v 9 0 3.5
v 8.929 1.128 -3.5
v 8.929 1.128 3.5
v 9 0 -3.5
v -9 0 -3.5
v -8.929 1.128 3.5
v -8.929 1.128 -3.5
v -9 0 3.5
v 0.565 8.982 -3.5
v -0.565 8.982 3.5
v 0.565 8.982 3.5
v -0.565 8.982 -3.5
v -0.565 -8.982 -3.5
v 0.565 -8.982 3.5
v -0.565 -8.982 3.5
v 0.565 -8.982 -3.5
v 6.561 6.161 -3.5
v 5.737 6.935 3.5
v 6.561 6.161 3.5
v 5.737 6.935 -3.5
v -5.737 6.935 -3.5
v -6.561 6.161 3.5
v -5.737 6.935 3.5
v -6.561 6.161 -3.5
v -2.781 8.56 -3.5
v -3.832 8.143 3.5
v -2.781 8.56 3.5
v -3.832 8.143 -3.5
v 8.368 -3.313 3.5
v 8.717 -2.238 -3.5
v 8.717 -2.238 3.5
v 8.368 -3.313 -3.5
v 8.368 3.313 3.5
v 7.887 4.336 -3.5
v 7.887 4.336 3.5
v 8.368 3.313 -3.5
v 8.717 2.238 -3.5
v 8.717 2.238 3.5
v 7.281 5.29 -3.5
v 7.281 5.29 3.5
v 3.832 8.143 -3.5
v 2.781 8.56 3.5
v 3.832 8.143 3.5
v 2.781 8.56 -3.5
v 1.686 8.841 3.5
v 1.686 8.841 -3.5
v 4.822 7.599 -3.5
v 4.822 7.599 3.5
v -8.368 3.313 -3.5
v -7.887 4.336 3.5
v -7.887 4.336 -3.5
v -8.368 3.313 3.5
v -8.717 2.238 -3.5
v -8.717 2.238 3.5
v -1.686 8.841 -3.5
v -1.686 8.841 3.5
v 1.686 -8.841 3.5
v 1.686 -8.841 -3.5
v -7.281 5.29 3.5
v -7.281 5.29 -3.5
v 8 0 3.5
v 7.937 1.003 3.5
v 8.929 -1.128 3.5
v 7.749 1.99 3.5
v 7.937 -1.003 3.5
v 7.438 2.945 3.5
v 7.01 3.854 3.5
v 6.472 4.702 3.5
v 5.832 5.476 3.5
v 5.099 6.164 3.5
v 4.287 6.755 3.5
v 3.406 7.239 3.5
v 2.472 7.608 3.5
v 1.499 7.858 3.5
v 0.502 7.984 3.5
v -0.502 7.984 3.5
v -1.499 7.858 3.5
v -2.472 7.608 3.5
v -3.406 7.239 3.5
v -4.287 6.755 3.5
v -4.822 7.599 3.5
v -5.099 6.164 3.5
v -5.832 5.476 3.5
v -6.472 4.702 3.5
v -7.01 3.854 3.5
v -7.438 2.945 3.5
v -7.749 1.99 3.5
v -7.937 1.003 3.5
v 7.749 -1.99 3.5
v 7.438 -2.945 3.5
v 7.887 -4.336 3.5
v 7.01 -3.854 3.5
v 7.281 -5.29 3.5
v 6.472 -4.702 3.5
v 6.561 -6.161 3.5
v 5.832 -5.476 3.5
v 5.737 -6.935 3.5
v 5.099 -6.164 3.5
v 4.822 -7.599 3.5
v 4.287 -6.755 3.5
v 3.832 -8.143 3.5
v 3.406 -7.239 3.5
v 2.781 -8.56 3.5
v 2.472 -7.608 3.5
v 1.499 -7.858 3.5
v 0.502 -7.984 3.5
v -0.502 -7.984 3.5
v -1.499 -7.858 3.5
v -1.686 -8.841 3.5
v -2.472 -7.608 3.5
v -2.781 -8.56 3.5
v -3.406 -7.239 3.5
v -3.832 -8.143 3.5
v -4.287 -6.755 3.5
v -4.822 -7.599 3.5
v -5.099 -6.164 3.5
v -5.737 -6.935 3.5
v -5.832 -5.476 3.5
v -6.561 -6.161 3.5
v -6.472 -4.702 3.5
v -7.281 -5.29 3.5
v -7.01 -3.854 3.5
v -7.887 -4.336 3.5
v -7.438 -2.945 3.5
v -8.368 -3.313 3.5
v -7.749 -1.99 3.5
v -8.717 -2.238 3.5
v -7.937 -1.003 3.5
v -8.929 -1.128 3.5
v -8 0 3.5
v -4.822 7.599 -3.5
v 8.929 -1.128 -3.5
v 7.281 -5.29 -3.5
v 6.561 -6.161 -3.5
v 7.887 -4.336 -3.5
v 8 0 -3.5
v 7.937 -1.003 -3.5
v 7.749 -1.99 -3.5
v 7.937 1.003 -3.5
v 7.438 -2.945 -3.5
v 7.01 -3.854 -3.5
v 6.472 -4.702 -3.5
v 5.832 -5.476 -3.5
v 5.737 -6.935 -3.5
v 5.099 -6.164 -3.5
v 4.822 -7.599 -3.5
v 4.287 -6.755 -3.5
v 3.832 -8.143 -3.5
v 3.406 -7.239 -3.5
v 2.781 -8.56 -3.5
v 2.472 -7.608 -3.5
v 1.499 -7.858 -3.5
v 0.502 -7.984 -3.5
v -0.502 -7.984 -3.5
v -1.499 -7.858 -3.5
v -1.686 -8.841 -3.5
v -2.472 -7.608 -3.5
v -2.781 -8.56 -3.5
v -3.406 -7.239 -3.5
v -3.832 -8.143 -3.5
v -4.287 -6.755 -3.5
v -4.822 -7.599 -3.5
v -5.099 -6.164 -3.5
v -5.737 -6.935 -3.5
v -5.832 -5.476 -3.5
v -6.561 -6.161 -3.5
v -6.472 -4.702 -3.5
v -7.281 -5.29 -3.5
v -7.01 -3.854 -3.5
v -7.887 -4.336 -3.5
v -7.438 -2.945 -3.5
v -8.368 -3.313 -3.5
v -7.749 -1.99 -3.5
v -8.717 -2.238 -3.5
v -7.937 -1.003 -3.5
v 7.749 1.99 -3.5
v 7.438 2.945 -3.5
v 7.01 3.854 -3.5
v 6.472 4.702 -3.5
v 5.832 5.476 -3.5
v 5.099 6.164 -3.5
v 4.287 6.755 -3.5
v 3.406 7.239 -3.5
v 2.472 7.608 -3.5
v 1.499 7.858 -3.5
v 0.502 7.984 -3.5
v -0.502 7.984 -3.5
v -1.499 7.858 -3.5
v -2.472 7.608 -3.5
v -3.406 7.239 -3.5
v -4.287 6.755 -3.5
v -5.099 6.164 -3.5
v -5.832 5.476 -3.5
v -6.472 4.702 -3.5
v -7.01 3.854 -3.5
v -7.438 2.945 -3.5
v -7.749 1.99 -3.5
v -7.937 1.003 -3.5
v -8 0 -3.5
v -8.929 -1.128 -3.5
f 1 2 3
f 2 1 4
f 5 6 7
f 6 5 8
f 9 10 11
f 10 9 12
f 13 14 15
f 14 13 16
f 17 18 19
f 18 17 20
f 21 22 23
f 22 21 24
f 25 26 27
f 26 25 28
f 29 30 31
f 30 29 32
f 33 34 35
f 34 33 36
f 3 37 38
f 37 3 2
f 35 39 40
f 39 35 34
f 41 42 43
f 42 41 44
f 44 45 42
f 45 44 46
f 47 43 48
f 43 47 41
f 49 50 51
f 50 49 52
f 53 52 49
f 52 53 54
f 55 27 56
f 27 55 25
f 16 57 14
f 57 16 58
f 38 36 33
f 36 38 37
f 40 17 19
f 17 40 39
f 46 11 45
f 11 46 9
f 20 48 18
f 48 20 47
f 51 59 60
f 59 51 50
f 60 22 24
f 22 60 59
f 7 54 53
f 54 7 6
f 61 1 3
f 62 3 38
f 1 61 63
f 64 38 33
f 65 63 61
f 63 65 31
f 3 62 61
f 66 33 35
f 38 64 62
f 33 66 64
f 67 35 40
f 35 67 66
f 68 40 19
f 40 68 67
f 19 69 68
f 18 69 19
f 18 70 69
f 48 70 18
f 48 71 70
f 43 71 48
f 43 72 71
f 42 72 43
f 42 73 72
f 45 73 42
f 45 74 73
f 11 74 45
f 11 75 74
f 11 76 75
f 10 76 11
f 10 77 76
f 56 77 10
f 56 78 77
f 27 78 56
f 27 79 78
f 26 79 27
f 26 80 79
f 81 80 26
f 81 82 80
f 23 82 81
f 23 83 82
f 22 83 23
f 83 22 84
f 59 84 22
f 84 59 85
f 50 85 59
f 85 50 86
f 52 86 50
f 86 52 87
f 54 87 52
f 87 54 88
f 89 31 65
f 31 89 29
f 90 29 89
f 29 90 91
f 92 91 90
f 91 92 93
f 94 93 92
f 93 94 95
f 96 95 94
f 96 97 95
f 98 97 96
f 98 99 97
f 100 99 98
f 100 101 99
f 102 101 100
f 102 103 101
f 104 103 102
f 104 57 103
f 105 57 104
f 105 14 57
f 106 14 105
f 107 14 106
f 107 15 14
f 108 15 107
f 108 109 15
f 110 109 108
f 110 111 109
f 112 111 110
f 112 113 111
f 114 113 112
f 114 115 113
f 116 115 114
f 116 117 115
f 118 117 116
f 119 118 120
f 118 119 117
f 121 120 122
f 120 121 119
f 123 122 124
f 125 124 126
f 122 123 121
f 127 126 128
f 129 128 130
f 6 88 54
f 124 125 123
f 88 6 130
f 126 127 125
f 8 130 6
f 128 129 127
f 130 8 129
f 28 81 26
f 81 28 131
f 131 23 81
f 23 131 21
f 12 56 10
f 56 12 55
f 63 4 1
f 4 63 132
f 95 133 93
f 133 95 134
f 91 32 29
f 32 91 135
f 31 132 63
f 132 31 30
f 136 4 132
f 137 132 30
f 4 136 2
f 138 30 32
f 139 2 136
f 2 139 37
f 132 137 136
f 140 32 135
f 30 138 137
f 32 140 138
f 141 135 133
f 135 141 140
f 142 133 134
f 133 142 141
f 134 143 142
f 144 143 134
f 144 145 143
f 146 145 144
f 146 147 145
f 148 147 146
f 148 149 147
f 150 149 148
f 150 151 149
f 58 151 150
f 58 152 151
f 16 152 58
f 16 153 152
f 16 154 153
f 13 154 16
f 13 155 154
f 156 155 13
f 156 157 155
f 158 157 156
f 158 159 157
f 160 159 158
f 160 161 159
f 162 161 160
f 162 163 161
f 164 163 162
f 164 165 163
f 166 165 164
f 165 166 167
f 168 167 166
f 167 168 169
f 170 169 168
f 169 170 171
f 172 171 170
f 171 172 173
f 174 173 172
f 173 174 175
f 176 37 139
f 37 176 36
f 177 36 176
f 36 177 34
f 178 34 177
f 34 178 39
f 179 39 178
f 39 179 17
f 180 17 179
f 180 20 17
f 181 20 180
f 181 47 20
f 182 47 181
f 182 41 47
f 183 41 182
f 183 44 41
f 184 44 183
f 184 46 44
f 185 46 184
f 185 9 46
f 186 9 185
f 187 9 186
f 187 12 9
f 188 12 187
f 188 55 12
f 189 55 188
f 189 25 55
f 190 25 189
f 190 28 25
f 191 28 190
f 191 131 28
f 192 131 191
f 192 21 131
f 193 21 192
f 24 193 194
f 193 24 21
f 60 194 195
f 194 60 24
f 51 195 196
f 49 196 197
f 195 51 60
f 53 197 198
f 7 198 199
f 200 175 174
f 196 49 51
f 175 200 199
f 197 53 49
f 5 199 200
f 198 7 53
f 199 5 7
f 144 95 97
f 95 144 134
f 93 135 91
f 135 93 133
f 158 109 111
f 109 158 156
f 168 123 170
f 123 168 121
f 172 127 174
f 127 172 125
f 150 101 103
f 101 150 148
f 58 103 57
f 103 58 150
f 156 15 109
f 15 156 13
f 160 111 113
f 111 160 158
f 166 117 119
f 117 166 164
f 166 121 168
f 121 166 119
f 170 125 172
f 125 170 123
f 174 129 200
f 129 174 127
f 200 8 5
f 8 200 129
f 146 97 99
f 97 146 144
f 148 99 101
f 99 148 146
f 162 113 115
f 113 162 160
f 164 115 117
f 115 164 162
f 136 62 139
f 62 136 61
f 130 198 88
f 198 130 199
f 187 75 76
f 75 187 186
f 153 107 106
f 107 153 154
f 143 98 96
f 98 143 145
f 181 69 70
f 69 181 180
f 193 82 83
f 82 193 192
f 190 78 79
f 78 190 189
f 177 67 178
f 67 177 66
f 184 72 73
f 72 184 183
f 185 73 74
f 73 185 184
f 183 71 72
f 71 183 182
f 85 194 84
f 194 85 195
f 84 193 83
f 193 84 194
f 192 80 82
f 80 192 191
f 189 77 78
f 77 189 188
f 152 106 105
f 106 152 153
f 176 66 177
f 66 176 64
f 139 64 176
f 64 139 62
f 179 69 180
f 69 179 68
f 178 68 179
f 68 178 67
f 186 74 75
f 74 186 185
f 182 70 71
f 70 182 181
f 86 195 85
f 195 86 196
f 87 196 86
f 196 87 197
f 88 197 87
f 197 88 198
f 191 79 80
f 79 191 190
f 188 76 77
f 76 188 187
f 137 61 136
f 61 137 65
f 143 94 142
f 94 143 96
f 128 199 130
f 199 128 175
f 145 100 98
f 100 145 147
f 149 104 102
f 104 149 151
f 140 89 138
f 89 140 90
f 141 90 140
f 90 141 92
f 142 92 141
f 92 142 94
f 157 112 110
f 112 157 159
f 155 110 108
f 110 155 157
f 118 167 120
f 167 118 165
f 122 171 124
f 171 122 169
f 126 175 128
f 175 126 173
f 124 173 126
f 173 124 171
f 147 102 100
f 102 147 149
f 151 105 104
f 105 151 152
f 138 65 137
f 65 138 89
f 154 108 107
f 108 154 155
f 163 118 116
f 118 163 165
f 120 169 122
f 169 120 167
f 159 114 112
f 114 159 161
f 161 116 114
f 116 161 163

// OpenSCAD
$fn = 50;


difference() {
	union() {
		translate(v = [0, 0, -3.5000000000]) {
			cylinder(h = 7, r = 9.0000000000);
		}
	}
	union() {
		translate(v = [0, 0, -100.0000000000]) {
			cylinder(h = 200, r = 8);
		}
	}
}
